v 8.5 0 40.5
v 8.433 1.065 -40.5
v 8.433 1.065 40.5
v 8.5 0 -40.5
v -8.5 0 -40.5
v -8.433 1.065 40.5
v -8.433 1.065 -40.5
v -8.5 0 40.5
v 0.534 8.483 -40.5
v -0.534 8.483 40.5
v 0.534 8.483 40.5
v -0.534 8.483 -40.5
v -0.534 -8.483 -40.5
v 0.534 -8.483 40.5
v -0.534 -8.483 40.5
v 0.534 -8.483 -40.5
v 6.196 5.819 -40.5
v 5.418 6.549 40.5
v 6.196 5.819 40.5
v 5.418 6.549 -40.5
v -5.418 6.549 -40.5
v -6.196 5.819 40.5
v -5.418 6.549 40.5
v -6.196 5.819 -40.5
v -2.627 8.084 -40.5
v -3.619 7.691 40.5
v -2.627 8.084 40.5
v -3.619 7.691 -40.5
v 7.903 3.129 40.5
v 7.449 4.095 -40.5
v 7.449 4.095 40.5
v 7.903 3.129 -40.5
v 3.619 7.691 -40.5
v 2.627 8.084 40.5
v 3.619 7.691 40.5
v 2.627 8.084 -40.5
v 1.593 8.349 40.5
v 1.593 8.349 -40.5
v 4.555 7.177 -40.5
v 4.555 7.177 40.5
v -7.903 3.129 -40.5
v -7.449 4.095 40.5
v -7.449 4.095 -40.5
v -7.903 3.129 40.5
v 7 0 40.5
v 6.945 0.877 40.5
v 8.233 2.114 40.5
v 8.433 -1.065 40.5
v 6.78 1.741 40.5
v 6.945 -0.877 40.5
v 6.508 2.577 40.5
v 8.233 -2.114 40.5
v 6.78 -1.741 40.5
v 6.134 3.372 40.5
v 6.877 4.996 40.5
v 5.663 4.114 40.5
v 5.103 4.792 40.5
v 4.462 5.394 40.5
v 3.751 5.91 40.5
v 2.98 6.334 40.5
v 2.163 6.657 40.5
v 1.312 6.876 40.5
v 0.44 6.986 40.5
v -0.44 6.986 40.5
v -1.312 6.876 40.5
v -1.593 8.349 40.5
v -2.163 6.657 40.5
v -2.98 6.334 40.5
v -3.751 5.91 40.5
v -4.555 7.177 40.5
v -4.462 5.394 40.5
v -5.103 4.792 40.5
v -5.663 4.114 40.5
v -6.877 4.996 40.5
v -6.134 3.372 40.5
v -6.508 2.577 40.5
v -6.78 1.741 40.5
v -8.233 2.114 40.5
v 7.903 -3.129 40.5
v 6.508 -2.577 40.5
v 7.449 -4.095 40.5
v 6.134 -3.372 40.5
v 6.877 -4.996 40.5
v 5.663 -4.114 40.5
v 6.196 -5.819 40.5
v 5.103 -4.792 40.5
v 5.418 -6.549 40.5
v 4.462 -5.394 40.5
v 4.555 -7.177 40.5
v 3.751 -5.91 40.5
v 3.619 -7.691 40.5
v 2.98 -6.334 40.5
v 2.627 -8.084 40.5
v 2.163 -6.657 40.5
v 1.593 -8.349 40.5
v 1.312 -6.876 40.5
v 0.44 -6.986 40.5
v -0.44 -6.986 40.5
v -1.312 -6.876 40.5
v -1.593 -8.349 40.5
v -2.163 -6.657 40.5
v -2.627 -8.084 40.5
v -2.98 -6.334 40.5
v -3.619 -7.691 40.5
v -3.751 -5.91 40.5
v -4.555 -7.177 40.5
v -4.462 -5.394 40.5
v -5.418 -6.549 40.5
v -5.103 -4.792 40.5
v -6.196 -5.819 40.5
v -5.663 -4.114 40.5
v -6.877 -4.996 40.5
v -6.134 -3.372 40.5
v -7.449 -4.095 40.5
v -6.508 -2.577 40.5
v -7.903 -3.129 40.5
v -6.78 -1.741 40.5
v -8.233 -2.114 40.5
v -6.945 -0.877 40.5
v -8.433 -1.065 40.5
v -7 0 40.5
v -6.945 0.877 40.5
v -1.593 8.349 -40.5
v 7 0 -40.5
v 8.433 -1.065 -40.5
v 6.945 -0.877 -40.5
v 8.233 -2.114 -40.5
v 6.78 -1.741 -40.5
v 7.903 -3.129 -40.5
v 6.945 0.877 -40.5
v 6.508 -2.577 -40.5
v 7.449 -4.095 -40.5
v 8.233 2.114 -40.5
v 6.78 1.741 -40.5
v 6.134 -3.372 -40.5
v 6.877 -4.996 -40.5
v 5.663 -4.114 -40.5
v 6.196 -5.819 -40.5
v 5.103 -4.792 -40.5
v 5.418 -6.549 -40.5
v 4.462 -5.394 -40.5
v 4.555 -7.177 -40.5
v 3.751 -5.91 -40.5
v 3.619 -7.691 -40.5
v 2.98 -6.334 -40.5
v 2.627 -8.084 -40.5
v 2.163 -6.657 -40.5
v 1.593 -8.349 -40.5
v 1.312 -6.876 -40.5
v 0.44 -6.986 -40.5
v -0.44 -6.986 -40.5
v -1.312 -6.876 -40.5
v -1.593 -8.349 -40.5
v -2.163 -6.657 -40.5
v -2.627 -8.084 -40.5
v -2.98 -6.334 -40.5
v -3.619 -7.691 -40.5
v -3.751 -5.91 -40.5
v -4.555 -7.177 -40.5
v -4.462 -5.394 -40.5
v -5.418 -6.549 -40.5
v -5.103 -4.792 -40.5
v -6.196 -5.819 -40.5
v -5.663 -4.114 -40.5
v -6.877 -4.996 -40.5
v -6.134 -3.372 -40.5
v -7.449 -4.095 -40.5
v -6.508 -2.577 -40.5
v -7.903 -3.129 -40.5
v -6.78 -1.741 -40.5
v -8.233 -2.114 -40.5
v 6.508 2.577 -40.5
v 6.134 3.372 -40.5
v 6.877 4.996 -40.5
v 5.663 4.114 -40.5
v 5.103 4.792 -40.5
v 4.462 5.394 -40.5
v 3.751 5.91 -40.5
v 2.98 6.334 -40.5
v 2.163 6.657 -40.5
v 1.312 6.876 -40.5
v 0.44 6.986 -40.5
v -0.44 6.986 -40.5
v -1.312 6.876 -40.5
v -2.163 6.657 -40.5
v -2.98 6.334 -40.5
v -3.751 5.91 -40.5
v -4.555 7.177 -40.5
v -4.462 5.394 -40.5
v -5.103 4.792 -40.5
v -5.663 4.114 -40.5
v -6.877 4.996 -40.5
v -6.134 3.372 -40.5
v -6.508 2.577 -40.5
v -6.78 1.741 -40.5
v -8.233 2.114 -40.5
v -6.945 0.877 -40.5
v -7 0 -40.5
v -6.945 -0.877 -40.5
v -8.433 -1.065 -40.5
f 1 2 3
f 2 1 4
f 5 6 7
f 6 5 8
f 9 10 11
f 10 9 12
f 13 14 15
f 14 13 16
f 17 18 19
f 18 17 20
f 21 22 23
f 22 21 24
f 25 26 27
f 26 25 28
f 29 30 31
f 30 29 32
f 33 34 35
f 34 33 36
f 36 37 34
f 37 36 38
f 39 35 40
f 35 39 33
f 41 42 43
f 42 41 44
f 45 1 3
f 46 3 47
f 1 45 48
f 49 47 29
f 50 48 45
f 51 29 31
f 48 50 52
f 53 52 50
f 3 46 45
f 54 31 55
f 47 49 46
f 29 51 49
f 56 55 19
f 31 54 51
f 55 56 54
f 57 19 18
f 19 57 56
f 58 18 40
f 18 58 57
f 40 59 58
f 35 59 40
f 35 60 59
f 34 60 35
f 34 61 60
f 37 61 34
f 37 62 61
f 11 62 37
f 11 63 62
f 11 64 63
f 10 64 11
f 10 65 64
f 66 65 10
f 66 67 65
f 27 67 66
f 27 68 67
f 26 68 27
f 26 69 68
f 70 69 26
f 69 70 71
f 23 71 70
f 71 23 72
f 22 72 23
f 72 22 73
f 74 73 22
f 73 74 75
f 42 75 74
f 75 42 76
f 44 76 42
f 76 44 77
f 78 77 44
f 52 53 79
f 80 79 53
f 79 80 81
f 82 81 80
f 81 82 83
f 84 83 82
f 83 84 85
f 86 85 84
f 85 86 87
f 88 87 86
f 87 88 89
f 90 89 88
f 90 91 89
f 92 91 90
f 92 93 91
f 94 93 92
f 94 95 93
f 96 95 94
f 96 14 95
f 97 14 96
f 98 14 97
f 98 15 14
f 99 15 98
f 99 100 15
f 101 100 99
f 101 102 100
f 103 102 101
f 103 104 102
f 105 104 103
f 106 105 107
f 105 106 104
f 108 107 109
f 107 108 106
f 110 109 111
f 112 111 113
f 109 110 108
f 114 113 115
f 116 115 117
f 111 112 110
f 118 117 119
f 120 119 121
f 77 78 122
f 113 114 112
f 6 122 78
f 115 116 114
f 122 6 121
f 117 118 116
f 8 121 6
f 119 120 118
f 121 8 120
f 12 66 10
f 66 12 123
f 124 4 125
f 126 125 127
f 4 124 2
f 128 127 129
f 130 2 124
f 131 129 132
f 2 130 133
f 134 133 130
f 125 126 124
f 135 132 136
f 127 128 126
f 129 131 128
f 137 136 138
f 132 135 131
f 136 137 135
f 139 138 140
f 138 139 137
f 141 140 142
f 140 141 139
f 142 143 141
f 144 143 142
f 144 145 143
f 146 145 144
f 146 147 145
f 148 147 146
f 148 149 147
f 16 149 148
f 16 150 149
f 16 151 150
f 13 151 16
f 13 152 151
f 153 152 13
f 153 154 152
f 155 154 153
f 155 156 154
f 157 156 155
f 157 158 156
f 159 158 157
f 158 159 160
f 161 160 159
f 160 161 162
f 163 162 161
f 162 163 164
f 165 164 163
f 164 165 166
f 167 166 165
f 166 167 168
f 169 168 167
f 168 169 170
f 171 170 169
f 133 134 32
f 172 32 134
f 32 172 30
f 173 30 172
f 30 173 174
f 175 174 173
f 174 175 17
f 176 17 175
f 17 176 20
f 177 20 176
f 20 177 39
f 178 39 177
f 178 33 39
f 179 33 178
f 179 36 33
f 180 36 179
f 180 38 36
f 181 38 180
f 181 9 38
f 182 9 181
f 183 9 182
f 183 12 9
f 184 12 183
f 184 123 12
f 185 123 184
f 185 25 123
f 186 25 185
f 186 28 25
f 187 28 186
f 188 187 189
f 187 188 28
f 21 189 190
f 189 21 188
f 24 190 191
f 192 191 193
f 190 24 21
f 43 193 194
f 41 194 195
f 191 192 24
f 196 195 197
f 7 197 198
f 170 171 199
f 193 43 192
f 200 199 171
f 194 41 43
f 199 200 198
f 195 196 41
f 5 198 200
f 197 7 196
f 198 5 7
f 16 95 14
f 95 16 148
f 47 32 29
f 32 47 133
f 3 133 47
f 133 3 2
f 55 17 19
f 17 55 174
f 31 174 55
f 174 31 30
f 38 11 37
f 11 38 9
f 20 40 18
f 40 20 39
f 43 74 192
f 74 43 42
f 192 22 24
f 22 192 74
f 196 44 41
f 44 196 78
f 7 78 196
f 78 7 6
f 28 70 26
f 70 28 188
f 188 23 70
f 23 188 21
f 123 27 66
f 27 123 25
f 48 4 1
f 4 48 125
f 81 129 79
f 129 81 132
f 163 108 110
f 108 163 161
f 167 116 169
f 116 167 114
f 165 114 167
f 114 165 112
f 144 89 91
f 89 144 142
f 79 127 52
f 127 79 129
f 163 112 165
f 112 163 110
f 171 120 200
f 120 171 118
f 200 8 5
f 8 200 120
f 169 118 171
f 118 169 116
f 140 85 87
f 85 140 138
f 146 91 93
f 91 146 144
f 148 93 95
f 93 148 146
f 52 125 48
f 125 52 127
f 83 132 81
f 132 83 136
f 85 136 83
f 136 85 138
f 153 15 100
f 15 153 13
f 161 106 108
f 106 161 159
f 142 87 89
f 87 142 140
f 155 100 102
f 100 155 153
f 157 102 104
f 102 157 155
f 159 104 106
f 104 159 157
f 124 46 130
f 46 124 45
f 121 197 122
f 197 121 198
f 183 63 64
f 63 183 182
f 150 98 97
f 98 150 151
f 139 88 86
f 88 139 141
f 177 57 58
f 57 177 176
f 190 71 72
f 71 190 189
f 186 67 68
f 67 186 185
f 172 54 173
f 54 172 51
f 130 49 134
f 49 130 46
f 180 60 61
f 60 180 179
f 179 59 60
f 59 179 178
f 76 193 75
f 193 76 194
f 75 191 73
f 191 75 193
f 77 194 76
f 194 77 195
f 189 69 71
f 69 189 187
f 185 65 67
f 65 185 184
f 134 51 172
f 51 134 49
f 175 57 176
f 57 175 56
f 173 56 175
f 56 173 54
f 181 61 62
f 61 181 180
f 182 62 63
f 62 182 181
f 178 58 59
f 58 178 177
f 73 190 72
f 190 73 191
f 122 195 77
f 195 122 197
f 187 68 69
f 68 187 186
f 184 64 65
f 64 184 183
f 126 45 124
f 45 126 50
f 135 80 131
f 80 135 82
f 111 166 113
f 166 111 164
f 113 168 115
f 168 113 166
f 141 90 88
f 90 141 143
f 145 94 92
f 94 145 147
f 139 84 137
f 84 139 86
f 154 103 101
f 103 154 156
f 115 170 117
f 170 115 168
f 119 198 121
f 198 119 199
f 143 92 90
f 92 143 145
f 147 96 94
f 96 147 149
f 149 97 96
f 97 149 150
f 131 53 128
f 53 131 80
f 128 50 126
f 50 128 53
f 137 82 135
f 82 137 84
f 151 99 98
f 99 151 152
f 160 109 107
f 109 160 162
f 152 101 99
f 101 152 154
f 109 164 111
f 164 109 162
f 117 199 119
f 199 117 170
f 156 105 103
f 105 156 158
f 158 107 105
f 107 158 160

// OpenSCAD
$fn = 50;


difference() {
	union() {
		translate(v = [0, 0, -40.5000000000]) {
			cylinder(h = 81, r = 8.5000000000);
		}
	}
	union() {
		translate(v = [0, 0, -100.0000000000]) {
			cylinder(h = 200, r = 7);
		}
	}
}
